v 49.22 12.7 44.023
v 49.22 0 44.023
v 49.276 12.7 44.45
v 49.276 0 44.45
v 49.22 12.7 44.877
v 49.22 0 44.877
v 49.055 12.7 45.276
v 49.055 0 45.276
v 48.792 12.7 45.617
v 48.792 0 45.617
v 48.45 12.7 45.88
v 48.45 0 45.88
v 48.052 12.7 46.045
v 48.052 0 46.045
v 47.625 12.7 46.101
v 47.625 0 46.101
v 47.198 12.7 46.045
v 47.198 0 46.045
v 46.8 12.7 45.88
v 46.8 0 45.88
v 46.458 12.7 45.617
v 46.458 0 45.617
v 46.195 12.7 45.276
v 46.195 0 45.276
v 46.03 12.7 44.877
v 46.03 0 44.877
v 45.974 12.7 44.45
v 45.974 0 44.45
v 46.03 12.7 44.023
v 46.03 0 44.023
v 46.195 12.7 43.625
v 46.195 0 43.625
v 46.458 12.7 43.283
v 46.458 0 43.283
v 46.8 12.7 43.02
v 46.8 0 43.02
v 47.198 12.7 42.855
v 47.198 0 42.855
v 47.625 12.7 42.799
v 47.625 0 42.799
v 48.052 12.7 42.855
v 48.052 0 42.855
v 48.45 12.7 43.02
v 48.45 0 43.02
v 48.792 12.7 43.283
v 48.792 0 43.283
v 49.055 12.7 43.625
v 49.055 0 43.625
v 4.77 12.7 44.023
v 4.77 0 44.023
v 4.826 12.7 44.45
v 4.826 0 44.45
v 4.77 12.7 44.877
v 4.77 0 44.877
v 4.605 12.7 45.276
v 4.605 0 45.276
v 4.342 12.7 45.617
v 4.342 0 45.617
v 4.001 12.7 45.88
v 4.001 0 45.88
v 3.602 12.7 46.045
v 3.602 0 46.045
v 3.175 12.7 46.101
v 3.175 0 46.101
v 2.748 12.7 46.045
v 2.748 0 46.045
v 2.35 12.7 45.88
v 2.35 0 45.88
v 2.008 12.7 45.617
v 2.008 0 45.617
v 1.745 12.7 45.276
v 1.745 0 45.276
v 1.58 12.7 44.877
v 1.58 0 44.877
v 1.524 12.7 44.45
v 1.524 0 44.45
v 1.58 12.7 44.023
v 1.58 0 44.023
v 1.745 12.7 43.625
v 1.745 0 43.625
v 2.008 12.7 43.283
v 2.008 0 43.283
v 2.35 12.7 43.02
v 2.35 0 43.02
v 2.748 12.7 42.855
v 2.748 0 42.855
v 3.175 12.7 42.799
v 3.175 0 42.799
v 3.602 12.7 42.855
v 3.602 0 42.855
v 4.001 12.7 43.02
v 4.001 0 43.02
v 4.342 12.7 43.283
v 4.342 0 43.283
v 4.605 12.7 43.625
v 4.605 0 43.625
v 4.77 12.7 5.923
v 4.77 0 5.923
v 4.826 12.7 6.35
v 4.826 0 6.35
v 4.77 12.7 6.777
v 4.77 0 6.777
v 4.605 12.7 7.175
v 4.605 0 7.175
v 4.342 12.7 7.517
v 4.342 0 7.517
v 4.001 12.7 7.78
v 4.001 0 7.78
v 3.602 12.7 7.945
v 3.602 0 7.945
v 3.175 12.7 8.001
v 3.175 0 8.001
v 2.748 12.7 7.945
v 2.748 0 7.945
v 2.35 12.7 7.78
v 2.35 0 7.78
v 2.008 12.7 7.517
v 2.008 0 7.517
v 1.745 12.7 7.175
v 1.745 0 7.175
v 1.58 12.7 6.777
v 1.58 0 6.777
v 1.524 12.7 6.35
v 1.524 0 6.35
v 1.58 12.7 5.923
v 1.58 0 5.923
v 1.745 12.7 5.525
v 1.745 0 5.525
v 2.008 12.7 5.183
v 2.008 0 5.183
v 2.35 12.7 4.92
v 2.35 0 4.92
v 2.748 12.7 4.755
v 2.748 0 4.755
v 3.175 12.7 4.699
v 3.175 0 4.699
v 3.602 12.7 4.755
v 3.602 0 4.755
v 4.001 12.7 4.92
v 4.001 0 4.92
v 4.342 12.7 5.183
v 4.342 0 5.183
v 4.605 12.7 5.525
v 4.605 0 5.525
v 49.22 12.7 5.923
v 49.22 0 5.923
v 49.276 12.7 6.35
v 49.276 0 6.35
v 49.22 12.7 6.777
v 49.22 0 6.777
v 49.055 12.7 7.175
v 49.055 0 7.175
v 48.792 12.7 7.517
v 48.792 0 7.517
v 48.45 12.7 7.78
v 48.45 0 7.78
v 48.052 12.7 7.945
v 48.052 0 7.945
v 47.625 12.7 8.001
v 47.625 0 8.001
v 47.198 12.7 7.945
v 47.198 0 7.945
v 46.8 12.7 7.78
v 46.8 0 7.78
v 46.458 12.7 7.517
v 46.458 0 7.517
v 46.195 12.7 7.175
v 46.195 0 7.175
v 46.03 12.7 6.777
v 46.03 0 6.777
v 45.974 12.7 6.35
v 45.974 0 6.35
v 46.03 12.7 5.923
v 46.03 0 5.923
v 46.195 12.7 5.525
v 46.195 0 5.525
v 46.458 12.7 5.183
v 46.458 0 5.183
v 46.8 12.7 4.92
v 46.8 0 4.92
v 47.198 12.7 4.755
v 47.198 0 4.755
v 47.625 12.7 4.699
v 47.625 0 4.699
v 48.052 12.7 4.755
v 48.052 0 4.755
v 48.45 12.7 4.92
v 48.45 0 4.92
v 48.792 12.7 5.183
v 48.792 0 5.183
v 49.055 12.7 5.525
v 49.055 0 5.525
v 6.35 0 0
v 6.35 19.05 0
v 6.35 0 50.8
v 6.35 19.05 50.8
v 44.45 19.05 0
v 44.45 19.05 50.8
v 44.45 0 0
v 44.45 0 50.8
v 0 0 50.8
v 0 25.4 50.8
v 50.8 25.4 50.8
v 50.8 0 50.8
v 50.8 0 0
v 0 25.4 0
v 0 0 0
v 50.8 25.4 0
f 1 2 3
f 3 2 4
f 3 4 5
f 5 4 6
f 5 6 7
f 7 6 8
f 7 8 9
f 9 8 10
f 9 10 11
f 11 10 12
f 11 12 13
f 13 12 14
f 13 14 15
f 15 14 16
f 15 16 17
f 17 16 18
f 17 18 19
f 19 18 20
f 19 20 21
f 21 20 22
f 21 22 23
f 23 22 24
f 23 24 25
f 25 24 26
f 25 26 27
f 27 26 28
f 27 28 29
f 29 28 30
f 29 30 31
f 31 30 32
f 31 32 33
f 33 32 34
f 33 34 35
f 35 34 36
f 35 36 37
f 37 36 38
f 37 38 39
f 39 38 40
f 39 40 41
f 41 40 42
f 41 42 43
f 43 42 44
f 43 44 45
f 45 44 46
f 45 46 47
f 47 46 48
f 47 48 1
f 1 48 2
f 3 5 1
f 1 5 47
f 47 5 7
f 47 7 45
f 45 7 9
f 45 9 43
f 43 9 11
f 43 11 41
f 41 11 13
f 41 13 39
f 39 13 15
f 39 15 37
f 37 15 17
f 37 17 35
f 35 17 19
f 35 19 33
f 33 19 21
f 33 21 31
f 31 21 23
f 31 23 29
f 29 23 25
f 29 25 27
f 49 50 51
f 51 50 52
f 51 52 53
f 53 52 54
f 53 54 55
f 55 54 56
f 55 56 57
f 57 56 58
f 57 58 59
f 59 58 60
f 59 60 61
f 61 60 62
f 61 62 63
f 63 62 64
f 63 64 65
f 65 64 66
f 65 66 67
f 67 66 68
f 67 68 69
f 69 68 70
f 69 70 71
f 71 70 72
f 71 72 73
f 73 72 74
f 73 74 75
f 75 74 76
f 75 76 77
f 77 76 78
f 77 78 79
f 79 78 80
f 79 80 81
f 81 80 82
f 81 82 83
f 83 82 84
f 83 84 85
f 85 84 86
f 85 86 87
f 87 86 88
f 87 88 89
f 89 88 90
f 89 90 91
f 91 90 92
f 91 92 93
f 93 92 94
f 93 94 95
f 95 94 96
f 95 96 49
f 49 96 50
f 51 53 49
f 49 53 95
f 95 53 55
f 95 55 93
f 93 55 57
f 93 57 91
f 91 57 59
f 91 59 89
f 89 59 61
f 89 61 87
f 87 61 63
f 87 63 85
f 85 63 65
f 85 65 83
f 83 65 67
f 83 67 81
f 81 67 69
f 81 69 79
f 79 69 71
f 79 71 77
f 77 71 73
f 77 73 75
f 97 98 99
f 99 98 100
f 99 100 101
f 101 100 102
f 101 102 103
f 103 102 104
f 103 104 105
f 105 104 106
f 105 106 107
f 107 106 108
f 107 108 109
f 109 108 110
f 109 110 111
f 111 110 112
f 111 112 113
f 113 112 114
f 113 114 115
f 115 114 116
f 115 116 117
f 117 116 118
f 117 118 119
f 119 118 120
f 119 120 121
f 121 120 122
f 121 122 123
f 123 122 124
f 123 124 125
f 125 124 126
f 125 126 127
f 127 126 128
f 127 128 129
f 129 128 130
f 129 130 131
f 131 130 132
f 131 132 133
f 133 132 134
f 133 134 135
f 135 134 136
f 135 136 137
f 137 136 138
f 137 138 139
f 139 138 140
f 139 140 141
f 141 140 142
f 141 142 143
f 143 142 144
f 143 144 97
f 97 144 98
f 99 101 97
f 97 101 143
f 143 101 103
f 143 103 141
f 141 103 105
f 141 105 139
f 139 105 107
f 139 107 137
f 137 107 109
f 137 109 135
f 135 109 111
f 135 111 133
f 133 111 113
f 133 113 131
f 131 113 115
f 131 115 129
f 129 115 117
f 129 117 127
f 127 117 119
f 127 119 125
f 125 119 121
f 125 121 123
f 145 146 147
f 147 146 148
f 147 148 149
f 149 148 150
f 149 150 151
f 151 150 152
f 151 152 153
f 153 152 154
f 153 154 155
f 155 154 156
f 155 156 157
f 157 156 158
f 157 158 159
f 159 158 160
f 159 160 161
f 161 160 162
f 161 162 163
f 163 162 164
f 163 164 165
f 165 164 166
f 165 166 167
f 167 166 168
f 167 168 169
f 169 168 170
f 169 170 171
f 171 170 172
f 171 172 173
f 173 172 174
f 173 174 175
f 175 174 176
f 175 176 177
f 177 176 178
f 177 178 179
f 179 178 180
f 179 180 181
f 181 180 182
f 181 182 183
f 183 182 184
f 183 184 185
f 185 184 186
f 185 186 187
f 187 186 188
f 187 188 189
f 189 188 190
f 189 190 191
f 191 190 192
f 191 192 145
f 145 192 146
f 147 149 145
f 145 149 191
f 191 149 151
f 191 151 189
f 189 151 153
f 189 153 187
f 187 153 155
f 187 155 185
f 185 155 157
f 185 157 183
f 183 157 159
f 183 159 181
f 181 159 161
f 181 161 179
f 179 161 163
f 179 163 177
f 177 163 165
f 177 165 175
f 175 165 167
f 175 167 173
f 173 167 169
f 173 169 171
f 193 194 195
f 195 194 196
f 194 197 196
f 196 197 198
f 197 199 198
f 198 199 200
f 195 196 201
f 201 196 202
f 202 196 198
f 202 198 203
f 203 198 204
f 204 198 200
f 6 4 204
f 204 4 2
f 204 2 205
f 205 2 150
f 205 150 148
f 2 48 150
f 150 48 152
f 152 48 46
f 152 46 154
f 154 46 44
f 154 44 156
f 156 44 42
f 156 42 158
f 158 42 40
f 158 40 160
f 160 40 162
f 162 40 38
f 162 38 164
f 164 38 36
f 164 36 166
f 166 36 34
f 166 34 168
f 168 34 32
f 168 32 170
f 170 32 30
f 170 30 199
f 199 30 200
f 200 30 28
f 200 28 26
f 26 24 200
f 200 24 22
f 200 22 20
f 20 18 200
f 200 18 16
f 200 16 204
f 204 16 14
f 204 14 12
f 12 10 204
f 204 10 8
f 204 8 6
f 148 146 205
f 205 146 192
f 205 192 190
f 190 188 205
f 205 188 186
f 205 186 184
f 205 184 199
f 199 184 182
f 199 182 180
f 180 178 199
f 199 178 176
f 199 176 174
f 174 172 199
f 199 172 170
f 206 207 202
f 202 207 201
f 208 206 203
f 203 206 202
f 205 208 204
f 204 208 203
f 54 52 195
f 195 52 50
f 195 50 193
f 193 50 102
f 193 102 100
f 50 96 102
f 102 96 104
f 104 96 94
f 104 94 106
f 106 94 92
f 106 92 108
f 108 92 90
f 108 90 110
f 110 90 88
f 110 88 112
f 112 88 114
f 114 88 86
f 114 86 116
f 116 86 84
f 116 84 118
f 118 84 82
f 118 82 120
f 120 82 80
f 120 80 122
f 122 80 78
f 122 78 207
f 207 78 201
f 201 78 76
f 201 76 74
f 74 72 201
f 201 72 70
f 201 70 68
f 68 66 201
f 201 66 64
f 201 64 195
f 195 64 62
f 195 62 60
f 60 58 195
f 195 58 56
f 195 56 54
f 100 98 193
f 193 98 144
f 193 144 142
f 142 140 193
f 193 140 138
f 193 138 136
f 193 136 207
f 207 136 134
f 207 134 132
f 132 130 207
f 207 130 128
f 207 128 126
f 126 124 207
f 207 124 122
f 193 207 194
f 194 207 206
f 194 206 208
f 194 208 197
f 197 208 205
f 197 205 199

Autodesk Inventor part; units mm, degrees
ref_plane "YZ Plane" through (0, 0, 0) normal (1, 0, 0) x (0, 1, 0)
ref_plane "XZ Plane" through (0, 0, 0) normal (0, 1, 0) x (-1, 0, 0)
ref_plane "XY Plane" through (0, 0, 0) normal (0, 0, 1) x (1, 0, 0)
sketch "Sketch1" plane through (0, 0, 0) normal (0, 1, 0) x (-1, 0, 0)
  point P0 (0, 0)
sketch "Sketch2" plane through (0, 0, 0) normal (0, 0, 1) x (1, 0, 0)
  line L0 (0, 0) -> (50.8, 0)
  line L1 (50.8, 0) -> (50.8, 25.4)
  line L2 (50.8, 25.4) -> (0, 25.4)
  line L3 (0, 25.4) -> (0, 0)
  line L4 (6.35, 0) -> (44.45, 0)
  line L5 (44.45, 0) -> (44.45, 19.05)
  line L6 (44.45, 19.05) -> (6.35, 19.05)
  line L7 (6.35, 19.05) -> (6.35, 0)
  dimension "d0" = 6.35
  dimension "d1" = 6.35
  dimension "d2" = 6.35
  dimension "d3" = 38.1
  dimension "d4" = 25.4
extrude "Extrusion1" add sketch "Sketch2" along normal blind 50.8 contours L3 L2 L1 L0 L5 L6 L7
ref_plane "Work Plane1" through (25.4, 0, 0) normal (1, 0, 0) x (0, 0, -1)
sketch "Sketch4" plane through (0, 0, 0) normal (0, -1, 0) x (1, 0, 0)
  circle A0 centre (3.175, 44.45) radius 1.651
  line L0 (6.35, 0) -> (6.35, 50.8) projected
  line L1 (0, 50.8) -> (6.35, 50.8) projected
  circle A1 centre (3.175, 6.35) radius 1.651
  line L2 (0, 0) -> (6.35, 0) projected
  line L3 (50.8, 50.8) -> (0, 50.8) projected
  line L4 (25.4, 50.8) -> (25.4, 0)
  line L5 (50.8, 0) -> (0, 0) projected
  circle A2 centre (47.625, 44.45) radius 1.651
  circle A3 centre (47.625, 6.35) radius 1.651
  dimension "d13" = 3.302
  dimension "d14" = 3.175
  dimension "d15" = 6.35
  dimension "d16" = 3.302
  dimension "d17" = 6.35
extrude "Extrusion2" cut sketch "Sketch4" against normal blind 12.7 contours A0 | A1 | A2 | A3
properties part number "WIREBRIDGE" material "ABS Plastic"
